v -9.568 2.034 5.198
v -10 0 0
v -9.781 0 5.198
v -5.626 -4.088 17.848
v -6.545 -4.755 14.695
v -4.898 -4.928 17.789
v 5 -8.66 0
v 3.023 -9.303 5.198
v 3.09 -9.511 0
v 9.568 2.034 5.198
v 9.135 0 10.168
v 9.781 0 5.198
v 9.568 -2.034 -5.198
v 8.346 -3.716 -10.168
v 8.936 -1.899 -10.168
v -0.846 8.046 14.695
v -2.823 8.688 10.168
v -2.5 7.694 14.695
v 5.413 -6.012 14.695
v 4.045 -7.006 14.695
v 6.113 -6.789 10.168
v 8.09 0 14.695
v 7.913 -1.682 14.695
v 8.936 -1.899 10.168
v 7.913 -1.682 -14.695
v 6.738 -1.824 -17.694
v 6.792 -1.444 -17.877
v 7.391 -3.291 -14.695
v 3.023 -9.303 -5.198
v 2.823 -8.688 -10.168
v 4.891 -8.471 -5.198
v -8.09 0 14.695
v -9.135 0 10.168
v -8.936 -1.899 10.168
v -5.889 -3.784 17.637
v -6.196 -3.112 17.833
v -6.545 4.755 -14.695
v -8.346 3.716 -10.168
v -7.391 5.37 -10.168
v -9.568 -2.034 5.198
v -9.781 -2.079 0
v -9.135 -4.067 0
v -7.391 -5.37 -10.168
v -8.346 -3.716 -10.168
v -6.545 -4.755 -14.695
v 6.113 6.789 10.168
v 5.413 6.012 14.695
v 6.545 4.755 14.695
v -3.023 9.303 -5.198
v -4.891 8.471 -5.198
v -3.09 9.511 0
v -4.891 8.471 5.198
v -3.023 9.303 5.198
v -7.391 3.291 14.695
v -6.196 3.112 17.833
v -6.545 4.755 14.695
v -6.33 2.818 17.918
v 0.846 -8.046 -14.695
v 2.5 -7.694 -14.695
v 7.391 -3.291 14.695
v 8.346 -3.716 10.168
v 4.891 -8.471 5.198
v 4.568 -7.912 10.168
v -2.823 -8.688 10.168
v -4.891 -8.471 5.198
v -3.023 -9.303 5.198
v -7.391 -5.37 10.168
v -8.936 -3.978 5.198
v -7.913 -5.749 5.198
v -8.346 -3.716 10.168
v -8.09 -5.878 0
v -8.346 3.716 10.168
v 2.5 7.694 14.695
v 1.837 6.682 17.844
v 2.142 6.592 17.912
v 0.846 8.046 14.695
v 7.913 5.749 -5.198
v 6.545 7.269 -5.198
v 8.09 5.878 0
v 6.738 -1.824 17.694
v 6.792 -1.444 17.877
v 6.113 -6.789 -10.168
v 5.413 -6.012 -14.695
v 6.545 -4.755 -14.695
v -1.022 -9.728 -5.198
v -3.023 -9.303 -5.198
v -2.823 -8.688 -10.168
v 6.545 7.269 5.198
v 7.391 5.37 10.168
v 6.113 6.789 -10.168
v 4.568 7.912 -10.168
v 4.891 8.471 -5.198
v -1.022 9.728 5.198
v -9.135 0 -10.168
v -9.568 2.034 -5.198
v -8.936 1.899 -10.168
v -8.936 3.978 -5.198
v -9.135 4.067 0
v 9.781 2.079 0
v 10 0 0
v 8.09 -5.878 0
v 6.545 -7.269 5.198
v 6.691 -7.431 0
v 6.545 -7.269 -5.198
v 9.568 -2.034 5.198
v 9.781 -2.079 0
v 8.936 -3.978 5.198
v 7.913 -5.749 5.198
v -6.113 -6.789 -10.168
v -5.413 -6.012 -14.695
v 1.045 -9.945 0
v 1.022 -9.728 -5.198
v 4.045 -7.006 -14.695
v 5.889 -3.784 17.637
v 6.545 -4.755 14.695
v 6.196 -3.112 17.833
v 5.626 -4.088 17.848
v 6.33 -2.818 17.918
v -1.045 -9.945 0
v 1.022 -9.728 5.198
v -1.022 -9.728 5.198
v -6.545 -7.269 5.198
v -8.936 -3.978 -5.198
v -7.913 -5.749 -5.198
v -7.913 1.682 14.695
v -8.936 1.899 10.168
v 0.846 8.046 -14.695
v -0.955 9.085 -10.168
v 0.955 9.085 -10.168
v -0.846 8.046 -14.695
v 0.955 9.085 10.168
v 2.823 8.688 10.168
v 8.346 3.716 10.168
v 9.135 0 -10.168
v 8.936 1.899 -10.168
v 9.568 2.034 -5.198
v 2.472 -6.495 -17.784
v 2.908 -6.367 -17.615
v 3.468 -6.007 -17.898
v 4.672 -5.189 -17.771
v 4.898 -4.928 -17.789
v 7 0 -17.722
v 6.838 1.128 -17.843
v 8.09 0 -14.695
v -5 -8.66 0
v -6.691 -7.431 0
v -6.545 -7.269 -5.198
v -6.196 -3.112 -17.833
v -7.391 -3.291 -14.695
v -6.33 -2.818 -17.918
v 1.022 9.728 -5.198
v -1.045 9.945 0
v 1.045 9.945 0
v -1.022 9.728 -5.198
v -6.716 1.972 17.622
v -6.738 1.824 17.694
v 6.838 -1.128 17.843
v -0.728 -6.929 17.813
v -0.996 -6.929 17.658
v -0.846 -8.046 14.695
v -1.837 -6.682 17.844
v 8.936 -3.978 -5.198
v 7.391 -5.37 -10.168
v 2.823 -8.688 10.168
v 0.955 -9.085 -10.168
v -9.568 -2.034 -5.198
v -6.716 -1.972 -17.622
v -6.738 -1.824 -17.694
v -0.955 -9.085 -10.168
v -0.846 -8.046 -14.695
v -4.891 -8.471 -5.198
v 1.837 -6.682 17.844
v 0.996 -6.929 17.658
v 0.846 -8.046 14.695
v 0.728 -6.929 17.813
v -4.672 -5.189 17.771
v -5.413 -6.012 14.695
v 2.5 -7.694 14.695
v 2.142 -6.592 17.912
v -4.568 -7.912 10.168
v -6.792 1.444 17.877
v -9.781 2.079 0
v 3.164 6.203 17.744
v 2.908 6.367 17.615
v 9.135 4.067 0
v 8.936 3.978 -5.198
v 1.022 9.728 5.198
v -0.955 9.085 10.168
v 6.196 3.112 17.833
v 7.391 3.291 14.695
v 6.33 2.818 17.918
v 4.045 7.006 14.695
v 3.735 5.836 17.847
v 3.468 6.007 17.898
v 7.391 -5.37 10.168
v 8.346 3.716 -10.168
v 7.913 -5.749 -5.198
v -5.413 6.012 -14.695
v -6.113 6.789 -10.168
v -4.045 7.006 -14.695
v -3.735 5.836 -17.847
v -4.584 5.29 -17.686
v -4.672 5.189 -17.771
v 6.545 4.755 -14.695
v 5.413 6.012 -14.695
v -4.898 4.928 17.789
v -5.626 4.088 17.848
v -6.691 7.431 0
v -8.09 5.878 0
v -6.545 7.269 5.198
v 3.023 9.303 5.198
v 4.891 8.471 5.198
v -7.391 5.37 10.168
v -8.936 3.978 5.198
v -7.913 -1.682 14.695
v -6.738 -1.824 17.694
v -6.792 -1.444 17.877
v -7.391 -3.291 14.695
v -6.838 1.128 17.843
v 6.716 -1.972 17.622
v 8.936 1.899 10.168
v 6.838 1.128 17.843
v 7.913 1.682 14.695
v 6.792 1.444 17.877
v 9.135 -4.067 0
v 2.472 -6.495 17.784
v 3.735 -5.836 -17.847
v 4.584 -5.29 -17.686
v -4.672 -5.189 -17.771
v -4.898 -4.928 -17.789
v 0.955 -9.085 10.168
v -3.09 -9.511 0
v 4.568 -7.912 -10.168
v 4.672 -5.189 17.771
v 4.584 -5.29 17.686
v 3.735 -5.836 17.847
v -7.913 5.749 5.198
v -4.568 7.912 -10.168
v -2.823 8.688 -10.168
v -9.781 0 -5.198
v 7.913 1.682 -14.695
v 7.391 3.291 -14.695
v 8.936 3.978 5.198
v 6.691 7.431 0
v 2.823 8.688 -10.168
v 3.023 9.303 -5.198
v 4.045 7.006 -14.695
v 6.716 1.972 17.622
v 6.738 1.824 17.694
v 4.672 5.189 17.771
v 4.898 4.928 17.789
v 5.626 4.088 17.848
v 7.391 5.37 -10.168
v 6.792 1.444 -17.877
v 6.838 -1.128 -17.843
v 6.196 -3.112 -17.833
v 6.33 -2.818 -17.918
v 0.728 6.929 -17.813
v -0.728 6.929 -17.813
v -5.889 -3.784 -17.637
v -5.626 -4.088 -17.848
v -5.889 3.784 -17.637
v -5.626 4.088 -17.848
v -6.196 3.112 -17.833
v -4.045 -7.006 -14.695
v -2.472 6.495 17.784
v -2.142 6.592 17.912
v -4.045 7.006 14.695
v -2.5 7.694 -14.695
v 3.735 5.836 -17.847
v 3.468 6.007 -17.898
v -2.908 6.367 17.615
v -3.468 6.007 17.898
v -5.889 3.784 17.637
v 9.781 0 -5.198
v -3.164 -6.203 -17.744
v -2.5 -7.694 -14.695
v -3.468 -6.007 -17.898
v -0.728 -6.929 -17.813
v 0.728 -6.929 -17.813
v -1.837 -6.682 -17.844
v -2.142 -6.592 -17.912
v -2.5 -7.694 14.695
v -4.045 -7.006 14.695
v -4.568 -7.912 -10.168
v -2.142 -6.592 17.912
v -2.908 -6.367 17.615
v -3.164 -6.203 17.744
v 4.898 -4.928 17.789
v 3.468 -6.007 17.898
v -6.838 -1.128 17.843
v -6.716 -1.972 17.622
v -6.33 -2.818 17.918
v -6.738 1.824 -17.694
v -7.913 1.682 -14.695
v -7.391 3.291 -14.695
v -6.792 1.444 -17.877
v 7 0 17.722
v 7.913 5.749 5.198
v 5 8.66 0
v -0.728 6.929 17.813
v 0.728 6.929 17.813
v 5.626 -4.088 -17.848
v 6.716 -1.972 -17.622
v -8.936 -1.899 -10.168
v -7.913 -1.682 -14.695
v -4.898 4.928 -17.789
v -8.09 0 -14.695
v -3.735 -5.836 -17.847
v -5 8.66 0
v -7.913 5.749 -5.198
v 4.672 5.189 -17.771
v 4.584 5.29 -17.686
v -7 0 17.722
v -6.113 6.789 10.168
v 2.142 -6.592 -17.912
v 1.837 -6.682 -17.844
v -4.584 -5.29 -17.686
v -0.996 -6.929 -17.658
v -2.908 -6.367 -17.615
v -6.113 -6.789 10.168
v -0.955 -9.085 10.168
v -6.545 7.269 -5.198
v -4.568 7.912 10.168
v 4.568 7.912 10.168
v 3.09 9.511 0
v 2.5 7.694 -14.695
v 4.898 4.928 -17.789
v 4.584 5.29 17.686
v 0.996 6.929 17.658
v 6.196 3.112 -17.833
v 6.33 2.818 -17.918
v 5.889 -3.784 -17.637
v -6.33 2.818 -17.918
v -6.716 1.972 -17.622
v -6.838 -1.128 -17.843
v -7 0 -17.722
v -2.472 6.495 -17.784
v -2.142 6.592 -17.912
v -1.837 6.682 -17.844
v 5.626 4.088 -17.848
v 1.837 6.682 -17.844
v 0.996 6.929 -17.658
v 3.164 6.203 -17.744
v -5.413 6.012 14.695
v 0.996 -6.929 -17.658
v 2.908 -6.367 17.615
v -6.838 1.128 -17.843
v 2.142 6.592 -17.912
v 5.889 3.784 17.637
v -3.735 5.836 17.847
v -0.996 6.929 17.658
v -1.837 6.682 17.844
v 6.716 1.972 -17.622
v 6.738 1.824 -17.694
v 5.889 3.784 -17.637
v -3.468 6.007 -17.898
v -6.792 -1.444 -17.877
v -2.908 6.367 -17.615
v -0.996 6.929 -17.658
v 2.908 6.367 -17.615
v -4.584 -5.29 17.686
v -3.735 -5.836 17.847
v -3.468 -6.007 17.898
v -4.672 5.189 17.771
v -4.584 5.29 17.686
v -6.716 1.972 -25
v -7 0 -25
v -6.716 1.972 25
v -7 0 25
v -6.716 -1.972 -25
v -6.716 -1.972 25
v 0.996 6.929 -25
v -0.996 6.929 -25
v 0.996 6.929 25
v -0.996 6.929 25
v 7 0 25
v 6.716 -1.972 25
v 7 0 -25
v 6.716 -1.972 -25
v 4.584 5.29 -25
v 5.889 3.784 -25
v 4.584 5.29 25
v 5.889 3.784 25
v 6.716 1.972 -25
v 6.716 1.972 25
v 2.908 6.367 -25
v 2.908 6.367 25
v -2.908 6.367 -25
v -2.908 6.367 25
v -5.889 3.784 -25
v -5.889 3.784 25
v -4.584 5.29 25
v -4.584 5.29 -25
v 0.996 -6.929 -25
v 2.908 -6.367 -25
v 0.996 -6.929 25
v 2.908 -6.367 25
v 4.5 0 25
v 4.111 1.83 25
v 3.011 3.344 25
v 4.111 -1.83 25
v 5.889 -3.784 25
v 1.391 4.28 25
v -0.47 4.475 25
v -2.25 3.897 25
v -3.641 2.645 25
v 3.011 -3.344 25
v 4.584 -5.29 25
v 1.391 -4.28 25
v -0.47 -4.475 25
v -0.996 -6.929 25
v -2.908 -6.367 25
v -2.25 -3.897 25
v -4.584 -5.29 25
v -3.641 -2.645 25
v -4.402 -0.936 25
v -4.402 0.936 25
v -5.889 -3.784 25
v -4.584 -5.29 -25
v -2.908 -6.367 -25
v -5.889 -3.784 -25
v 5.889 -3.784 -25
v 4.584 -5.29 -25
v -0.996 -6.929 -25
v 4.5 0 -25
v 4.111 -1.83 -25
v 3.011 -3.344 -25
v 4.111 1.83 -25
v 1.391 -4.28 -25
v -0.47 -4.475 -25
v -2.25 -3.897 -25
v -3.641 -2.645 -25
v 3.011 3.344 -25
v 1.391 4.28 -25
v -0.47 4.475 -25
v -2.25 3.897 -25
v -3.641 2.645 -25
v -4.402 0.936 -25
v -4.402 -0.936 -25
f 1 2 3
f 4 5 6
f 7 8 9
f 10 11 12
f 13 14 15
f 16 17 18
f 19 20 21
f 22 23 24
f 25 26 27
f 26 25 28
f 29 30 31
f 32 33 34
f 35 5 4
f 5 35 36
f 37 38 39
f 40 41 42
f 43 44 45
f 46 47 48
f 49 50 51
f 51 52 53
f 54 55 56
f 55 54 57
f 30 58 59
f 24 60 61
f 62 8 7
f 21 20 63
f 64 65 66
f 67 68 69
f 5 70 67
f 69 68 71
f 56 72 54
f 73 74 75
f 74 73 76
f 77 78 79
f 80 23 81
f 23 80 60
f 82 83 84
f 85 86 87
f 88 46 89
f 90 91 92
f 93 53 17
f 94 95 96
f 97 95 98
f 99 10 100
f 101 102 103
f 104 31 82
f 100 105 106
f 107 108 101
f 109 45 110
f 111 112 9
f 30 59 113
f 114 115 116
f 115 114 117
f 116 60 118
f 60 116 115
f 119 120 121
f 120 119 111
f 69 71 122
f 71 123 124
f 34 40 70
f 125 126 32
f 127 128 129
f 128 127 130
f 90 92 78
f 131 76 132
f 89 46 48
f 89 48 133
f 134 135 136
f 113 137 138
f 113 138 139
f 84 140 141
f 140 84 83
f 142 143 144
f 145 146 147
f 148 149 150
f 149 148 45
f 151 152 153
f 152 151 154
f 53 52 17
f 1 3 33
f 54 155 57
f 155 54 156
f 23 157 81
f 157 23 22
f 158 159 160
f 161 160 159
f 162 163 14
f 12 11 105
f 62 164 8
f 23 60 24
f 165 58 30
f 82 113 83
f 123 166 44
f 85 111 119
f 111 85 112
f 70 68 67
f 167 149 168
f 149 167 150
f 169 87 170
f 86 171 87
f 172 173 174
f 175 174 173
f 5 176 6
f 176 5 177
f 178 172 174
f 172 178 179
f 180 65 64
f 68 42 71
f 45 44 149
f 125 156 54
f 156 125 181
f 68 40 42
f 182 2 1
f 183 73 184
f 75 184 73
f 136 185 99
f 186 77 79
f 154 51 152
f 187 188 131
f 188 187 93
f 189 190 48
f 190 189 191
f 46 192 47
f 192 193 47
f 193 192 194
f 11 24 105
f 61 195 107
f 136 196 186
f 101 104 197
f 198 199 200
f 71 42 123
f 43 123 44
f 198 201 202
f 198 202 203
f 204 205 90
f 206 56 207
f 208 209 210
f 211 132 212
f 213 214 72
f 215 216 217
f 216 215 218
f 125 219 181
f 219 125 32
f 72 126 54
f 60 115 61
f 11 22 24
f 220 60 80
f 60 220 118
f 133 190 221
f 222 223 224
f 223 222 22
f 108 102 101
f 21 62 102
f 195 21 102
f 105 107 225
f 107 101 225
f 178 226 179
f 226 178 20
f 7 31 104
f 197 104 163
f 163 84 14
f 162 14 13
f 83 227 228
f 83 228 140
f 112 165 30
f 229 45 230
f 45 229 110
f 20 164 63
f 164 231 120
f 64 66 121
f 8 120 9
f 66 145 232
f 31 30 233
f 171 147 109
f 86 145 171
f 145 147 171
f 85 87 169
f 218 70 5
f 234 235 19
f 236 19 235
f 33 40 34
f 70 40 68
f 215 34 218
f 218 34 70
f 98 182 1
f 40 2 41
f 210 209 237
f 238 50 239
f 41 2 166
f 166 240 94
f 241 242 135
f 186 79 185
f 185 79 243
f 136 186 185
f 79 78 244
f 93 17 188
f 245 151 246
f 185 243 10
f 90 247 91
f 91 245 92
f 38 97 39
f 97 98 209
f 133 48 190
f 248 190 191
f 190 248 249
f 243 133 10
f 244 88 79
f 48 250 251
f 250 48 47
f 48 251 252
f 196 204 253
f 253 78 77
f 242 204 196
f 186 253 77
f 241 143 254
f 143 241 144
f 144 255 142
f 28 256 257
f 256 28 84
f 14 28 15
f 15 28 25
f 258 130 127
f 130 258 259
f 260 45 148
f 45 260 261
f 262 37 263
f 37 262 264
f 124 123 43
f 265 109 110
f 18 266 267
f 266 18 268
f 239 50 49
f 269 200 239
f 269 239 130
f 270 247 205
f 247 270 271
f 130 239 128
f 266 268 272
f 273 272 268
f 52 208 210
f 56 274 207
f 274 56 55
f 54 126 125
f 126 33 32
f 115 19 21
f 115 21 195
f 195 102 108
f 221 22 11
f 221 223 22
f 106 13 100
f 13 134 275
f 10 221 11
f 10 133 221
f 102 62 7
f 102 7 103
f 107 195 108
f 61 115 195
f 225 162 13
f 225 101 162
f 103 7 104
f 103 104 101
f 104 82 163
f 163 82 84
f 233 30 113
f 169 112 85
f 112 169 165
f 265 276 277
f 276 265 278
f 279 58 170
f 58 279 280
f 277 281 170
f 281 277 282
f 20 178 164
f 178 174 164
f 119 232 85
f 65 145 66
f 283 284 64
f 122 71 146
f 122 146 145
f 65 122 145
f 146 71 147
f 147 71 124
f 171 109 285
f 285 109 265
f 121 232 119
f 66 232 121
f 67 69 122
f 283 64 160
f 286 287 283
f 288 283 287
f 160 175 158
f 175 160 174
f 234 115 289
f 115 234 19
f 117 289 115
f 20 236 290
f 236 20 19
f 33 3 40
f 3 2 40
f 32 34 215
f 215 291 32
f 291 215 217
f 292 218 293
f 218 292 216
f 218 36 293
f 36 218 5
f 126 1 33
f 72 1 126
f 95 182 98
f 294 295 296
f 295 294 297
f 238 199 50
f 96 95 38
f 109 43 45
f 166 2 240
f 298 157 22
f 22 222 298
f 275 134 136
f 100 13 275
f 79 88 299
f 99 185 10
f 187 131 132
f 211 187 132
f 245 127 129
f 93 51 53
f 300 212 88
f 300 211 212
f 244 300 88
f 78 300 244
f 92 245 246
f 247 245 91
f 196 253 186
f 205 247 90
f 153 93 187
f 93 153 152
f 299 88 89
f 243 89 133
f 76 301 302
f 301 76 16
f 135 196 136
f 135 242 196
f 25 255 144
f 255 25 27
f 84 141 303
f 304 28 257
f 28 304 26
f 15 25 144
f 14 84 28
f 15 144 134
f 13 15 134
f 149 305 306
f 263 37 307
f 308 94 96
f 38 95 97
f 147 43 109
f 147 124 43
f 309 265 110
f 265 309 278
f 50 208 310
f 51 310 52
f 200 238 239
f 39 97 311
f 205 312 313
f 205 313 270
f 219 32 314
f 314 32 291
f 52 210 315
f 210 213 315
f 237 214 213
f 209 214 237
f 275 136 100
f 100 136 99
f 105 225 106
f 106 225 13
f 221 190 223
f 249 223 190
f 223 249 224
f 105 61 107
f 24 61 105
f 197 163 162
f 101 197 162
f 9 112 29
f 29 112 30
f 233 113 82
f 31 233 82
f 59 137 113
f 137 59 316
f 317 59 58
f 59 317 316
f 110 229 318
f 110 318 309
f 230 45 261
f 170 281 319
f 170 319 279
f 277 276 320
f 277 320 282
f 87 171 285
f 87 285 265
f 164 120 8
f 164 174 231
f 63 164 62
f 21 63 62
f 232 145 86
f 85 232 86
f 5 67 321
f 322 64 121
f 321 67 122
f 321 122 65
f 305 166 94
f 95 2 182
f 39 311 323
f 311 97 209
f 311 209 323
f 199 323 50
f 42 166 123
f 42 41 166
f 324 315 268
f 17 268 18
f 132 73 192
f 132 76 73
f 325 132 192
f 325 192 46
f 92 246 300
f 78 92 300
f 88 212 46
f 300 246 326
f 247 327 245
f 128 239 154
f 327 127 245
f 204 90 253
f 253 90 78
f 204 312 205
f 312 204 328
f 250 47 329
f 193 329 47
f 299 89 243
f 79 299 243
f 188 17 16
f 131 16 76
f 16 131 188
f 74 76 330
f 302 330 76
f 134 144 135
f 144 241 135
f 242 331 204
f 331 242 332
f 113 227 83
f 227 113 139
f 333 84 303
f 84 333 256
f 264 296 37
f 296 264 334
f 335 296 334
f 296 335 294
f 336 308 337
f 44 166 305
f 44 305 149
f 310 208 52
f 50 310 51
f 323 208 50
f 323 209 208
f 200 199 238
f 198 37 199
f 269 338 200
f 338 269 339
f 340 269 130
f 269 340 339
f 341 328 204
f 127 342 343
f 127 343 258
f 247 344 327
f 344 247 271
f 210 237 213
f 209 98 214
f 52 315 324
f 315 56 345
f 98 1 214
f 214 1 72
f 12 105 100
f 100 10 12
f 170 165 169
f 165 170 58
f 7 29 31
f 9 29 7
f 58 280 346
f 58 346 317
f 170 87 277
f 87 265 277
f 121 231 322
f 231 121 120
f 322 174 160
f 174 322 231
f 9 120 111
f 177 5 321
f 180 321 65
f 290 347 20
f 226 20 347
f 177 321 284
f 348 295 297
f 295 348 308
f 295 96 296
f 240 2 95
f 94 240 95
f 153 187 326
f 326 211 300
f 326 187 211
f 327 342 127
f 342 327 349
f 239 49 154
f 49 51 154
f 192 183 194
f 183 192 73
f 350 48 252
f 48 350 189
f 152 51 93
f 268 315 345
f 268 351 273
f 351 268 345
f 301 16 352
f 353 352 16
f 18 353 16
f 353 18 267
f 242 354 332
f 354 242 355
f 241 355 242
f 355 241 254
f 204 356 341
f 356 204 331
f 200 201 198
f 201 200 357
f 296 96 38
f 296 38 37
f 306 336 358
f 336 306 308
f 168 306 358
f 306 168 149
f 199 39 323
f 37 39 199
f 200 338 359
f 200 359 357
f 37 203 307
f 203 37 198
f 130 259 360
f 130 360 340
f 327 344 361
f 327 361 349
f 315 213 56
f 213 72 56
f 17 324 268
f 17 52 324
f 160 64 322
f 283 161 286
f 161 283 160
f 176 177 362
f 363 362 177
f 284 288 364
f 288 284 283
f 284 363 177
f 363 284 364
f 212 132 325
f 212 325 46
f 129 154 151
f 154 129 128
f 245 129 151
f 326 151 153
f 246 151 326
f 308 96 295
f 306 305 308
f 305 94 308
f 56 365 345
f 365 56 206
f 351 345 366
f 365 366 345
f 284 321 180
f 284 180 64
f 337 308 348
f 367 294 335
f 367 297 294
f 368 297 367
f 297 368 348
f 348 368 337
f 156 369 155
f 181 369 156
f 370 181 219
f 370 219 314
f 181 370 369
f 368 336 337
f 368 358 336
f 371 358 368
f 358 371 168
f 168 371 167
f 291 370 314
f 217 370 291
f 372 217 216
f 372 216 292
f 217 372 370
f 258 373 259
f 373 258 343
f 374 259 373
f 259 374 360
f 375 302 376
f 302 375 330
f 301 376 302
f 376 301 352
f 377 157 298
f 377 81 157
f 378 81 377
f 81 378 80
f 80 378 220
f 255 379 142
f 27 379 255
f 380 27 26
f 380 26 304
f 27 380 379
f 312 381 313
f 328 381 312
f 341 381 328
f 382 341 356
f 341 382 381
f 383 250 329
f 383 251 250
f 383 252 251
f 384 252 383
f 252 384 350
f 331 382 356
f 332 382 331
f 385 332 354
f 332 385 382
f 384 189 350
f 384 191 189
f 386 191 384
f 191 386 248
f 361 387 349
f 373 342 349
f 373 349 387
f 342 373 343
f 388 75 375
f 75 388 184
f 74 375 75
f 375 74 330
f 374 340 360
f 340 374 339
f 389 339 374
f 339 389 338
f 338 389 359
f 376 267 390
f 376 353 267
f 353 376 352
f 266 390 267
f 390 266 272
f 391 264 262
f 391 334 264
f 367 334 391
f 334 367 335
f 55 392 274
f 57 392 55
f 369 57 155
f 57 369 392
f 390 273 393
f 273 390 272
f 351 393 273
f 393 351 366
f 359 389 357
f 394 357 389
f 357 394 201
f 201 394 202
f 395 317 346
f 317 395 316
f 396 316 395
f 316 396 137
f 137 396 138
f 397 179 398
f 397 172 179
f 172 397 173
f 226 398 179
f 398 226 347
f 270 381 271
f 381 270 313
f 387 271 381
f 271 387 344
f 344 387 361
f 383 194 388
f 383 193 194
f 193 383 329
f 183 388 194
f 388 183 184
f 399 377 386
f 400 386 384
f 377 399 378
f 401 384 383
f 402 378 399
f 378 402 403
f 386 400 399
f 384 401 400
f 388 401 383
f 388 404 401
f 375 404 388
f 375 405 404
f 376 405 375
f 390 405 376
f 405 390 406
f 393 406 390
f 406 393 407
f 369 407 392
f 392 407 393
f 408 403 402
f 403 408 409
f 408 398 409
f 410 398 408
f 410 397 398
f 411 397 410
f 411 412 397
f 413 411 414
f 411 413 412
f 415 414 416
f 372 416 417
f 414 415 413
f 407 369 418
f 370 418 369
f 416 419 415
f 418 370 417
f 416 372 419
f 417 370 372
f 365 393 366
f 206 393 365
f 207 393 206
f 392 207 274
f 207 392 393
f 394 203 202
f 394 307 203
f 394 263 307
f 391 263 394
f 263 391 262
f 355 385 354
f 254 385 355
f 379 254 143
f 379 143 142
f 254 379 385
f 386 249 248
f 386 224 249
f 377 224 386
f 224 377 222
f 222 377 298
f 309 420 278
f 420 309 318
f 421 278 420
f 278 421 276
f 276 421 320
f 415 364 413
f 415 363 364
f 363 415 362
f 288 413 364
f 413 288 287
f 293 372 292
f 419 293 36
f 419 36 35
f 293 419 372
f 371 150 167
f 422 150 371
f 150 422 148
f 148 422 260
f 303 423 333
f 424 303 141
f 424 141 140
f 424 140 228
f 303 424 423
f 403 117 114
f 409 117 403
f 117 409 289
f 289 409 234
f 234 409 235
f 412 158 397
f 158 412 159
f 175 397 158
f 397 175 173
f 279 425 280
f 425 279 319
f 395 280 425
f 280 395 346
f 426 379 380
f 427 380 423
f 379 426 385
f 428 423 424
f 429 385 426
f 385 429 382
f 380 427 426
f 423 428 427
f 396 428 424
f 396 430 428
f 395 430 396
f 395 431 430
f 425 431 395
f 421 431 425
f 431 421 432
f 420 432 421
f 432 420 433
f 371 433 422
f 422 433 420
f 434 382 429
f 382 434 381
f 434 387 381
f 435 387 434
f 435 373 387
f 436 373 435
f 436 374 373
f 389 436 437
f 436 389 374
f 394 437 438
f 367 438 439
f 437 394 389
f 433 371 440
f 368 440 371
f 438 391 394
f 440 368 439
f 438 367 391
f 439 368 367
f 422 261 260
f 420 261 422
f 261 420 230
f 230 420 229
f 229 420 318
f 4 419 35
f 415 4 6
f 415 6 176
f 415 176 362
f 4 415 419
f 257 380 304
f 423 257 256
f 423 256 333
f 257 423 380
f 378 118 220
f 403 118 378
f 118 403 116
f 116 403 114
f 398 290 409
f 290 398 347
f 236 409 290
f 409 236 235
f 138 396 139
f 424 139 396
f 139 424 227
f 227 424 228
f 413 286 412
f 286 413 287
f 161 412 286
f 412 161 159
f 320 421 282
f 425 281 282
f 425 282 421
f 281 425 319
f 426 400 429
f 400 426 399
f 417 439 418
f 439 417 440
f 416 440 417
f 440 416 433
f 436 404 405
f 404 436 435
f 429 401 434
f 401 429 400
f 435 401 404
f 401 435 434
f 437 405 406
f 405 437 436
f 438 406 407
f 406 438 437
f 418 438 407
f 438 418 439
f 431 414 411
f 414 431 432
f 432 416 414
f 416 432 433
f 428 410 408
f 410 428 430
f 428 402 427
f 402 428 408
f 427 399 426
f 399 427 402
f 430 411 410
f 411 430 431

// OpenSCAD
difference(){
    union(){
        scale([1,1,2.5])sphere(r=10);
        cylinder(r=7,h=50,center=true);
    }
    cylinder(r=4.5,h=52,center=true);
}
